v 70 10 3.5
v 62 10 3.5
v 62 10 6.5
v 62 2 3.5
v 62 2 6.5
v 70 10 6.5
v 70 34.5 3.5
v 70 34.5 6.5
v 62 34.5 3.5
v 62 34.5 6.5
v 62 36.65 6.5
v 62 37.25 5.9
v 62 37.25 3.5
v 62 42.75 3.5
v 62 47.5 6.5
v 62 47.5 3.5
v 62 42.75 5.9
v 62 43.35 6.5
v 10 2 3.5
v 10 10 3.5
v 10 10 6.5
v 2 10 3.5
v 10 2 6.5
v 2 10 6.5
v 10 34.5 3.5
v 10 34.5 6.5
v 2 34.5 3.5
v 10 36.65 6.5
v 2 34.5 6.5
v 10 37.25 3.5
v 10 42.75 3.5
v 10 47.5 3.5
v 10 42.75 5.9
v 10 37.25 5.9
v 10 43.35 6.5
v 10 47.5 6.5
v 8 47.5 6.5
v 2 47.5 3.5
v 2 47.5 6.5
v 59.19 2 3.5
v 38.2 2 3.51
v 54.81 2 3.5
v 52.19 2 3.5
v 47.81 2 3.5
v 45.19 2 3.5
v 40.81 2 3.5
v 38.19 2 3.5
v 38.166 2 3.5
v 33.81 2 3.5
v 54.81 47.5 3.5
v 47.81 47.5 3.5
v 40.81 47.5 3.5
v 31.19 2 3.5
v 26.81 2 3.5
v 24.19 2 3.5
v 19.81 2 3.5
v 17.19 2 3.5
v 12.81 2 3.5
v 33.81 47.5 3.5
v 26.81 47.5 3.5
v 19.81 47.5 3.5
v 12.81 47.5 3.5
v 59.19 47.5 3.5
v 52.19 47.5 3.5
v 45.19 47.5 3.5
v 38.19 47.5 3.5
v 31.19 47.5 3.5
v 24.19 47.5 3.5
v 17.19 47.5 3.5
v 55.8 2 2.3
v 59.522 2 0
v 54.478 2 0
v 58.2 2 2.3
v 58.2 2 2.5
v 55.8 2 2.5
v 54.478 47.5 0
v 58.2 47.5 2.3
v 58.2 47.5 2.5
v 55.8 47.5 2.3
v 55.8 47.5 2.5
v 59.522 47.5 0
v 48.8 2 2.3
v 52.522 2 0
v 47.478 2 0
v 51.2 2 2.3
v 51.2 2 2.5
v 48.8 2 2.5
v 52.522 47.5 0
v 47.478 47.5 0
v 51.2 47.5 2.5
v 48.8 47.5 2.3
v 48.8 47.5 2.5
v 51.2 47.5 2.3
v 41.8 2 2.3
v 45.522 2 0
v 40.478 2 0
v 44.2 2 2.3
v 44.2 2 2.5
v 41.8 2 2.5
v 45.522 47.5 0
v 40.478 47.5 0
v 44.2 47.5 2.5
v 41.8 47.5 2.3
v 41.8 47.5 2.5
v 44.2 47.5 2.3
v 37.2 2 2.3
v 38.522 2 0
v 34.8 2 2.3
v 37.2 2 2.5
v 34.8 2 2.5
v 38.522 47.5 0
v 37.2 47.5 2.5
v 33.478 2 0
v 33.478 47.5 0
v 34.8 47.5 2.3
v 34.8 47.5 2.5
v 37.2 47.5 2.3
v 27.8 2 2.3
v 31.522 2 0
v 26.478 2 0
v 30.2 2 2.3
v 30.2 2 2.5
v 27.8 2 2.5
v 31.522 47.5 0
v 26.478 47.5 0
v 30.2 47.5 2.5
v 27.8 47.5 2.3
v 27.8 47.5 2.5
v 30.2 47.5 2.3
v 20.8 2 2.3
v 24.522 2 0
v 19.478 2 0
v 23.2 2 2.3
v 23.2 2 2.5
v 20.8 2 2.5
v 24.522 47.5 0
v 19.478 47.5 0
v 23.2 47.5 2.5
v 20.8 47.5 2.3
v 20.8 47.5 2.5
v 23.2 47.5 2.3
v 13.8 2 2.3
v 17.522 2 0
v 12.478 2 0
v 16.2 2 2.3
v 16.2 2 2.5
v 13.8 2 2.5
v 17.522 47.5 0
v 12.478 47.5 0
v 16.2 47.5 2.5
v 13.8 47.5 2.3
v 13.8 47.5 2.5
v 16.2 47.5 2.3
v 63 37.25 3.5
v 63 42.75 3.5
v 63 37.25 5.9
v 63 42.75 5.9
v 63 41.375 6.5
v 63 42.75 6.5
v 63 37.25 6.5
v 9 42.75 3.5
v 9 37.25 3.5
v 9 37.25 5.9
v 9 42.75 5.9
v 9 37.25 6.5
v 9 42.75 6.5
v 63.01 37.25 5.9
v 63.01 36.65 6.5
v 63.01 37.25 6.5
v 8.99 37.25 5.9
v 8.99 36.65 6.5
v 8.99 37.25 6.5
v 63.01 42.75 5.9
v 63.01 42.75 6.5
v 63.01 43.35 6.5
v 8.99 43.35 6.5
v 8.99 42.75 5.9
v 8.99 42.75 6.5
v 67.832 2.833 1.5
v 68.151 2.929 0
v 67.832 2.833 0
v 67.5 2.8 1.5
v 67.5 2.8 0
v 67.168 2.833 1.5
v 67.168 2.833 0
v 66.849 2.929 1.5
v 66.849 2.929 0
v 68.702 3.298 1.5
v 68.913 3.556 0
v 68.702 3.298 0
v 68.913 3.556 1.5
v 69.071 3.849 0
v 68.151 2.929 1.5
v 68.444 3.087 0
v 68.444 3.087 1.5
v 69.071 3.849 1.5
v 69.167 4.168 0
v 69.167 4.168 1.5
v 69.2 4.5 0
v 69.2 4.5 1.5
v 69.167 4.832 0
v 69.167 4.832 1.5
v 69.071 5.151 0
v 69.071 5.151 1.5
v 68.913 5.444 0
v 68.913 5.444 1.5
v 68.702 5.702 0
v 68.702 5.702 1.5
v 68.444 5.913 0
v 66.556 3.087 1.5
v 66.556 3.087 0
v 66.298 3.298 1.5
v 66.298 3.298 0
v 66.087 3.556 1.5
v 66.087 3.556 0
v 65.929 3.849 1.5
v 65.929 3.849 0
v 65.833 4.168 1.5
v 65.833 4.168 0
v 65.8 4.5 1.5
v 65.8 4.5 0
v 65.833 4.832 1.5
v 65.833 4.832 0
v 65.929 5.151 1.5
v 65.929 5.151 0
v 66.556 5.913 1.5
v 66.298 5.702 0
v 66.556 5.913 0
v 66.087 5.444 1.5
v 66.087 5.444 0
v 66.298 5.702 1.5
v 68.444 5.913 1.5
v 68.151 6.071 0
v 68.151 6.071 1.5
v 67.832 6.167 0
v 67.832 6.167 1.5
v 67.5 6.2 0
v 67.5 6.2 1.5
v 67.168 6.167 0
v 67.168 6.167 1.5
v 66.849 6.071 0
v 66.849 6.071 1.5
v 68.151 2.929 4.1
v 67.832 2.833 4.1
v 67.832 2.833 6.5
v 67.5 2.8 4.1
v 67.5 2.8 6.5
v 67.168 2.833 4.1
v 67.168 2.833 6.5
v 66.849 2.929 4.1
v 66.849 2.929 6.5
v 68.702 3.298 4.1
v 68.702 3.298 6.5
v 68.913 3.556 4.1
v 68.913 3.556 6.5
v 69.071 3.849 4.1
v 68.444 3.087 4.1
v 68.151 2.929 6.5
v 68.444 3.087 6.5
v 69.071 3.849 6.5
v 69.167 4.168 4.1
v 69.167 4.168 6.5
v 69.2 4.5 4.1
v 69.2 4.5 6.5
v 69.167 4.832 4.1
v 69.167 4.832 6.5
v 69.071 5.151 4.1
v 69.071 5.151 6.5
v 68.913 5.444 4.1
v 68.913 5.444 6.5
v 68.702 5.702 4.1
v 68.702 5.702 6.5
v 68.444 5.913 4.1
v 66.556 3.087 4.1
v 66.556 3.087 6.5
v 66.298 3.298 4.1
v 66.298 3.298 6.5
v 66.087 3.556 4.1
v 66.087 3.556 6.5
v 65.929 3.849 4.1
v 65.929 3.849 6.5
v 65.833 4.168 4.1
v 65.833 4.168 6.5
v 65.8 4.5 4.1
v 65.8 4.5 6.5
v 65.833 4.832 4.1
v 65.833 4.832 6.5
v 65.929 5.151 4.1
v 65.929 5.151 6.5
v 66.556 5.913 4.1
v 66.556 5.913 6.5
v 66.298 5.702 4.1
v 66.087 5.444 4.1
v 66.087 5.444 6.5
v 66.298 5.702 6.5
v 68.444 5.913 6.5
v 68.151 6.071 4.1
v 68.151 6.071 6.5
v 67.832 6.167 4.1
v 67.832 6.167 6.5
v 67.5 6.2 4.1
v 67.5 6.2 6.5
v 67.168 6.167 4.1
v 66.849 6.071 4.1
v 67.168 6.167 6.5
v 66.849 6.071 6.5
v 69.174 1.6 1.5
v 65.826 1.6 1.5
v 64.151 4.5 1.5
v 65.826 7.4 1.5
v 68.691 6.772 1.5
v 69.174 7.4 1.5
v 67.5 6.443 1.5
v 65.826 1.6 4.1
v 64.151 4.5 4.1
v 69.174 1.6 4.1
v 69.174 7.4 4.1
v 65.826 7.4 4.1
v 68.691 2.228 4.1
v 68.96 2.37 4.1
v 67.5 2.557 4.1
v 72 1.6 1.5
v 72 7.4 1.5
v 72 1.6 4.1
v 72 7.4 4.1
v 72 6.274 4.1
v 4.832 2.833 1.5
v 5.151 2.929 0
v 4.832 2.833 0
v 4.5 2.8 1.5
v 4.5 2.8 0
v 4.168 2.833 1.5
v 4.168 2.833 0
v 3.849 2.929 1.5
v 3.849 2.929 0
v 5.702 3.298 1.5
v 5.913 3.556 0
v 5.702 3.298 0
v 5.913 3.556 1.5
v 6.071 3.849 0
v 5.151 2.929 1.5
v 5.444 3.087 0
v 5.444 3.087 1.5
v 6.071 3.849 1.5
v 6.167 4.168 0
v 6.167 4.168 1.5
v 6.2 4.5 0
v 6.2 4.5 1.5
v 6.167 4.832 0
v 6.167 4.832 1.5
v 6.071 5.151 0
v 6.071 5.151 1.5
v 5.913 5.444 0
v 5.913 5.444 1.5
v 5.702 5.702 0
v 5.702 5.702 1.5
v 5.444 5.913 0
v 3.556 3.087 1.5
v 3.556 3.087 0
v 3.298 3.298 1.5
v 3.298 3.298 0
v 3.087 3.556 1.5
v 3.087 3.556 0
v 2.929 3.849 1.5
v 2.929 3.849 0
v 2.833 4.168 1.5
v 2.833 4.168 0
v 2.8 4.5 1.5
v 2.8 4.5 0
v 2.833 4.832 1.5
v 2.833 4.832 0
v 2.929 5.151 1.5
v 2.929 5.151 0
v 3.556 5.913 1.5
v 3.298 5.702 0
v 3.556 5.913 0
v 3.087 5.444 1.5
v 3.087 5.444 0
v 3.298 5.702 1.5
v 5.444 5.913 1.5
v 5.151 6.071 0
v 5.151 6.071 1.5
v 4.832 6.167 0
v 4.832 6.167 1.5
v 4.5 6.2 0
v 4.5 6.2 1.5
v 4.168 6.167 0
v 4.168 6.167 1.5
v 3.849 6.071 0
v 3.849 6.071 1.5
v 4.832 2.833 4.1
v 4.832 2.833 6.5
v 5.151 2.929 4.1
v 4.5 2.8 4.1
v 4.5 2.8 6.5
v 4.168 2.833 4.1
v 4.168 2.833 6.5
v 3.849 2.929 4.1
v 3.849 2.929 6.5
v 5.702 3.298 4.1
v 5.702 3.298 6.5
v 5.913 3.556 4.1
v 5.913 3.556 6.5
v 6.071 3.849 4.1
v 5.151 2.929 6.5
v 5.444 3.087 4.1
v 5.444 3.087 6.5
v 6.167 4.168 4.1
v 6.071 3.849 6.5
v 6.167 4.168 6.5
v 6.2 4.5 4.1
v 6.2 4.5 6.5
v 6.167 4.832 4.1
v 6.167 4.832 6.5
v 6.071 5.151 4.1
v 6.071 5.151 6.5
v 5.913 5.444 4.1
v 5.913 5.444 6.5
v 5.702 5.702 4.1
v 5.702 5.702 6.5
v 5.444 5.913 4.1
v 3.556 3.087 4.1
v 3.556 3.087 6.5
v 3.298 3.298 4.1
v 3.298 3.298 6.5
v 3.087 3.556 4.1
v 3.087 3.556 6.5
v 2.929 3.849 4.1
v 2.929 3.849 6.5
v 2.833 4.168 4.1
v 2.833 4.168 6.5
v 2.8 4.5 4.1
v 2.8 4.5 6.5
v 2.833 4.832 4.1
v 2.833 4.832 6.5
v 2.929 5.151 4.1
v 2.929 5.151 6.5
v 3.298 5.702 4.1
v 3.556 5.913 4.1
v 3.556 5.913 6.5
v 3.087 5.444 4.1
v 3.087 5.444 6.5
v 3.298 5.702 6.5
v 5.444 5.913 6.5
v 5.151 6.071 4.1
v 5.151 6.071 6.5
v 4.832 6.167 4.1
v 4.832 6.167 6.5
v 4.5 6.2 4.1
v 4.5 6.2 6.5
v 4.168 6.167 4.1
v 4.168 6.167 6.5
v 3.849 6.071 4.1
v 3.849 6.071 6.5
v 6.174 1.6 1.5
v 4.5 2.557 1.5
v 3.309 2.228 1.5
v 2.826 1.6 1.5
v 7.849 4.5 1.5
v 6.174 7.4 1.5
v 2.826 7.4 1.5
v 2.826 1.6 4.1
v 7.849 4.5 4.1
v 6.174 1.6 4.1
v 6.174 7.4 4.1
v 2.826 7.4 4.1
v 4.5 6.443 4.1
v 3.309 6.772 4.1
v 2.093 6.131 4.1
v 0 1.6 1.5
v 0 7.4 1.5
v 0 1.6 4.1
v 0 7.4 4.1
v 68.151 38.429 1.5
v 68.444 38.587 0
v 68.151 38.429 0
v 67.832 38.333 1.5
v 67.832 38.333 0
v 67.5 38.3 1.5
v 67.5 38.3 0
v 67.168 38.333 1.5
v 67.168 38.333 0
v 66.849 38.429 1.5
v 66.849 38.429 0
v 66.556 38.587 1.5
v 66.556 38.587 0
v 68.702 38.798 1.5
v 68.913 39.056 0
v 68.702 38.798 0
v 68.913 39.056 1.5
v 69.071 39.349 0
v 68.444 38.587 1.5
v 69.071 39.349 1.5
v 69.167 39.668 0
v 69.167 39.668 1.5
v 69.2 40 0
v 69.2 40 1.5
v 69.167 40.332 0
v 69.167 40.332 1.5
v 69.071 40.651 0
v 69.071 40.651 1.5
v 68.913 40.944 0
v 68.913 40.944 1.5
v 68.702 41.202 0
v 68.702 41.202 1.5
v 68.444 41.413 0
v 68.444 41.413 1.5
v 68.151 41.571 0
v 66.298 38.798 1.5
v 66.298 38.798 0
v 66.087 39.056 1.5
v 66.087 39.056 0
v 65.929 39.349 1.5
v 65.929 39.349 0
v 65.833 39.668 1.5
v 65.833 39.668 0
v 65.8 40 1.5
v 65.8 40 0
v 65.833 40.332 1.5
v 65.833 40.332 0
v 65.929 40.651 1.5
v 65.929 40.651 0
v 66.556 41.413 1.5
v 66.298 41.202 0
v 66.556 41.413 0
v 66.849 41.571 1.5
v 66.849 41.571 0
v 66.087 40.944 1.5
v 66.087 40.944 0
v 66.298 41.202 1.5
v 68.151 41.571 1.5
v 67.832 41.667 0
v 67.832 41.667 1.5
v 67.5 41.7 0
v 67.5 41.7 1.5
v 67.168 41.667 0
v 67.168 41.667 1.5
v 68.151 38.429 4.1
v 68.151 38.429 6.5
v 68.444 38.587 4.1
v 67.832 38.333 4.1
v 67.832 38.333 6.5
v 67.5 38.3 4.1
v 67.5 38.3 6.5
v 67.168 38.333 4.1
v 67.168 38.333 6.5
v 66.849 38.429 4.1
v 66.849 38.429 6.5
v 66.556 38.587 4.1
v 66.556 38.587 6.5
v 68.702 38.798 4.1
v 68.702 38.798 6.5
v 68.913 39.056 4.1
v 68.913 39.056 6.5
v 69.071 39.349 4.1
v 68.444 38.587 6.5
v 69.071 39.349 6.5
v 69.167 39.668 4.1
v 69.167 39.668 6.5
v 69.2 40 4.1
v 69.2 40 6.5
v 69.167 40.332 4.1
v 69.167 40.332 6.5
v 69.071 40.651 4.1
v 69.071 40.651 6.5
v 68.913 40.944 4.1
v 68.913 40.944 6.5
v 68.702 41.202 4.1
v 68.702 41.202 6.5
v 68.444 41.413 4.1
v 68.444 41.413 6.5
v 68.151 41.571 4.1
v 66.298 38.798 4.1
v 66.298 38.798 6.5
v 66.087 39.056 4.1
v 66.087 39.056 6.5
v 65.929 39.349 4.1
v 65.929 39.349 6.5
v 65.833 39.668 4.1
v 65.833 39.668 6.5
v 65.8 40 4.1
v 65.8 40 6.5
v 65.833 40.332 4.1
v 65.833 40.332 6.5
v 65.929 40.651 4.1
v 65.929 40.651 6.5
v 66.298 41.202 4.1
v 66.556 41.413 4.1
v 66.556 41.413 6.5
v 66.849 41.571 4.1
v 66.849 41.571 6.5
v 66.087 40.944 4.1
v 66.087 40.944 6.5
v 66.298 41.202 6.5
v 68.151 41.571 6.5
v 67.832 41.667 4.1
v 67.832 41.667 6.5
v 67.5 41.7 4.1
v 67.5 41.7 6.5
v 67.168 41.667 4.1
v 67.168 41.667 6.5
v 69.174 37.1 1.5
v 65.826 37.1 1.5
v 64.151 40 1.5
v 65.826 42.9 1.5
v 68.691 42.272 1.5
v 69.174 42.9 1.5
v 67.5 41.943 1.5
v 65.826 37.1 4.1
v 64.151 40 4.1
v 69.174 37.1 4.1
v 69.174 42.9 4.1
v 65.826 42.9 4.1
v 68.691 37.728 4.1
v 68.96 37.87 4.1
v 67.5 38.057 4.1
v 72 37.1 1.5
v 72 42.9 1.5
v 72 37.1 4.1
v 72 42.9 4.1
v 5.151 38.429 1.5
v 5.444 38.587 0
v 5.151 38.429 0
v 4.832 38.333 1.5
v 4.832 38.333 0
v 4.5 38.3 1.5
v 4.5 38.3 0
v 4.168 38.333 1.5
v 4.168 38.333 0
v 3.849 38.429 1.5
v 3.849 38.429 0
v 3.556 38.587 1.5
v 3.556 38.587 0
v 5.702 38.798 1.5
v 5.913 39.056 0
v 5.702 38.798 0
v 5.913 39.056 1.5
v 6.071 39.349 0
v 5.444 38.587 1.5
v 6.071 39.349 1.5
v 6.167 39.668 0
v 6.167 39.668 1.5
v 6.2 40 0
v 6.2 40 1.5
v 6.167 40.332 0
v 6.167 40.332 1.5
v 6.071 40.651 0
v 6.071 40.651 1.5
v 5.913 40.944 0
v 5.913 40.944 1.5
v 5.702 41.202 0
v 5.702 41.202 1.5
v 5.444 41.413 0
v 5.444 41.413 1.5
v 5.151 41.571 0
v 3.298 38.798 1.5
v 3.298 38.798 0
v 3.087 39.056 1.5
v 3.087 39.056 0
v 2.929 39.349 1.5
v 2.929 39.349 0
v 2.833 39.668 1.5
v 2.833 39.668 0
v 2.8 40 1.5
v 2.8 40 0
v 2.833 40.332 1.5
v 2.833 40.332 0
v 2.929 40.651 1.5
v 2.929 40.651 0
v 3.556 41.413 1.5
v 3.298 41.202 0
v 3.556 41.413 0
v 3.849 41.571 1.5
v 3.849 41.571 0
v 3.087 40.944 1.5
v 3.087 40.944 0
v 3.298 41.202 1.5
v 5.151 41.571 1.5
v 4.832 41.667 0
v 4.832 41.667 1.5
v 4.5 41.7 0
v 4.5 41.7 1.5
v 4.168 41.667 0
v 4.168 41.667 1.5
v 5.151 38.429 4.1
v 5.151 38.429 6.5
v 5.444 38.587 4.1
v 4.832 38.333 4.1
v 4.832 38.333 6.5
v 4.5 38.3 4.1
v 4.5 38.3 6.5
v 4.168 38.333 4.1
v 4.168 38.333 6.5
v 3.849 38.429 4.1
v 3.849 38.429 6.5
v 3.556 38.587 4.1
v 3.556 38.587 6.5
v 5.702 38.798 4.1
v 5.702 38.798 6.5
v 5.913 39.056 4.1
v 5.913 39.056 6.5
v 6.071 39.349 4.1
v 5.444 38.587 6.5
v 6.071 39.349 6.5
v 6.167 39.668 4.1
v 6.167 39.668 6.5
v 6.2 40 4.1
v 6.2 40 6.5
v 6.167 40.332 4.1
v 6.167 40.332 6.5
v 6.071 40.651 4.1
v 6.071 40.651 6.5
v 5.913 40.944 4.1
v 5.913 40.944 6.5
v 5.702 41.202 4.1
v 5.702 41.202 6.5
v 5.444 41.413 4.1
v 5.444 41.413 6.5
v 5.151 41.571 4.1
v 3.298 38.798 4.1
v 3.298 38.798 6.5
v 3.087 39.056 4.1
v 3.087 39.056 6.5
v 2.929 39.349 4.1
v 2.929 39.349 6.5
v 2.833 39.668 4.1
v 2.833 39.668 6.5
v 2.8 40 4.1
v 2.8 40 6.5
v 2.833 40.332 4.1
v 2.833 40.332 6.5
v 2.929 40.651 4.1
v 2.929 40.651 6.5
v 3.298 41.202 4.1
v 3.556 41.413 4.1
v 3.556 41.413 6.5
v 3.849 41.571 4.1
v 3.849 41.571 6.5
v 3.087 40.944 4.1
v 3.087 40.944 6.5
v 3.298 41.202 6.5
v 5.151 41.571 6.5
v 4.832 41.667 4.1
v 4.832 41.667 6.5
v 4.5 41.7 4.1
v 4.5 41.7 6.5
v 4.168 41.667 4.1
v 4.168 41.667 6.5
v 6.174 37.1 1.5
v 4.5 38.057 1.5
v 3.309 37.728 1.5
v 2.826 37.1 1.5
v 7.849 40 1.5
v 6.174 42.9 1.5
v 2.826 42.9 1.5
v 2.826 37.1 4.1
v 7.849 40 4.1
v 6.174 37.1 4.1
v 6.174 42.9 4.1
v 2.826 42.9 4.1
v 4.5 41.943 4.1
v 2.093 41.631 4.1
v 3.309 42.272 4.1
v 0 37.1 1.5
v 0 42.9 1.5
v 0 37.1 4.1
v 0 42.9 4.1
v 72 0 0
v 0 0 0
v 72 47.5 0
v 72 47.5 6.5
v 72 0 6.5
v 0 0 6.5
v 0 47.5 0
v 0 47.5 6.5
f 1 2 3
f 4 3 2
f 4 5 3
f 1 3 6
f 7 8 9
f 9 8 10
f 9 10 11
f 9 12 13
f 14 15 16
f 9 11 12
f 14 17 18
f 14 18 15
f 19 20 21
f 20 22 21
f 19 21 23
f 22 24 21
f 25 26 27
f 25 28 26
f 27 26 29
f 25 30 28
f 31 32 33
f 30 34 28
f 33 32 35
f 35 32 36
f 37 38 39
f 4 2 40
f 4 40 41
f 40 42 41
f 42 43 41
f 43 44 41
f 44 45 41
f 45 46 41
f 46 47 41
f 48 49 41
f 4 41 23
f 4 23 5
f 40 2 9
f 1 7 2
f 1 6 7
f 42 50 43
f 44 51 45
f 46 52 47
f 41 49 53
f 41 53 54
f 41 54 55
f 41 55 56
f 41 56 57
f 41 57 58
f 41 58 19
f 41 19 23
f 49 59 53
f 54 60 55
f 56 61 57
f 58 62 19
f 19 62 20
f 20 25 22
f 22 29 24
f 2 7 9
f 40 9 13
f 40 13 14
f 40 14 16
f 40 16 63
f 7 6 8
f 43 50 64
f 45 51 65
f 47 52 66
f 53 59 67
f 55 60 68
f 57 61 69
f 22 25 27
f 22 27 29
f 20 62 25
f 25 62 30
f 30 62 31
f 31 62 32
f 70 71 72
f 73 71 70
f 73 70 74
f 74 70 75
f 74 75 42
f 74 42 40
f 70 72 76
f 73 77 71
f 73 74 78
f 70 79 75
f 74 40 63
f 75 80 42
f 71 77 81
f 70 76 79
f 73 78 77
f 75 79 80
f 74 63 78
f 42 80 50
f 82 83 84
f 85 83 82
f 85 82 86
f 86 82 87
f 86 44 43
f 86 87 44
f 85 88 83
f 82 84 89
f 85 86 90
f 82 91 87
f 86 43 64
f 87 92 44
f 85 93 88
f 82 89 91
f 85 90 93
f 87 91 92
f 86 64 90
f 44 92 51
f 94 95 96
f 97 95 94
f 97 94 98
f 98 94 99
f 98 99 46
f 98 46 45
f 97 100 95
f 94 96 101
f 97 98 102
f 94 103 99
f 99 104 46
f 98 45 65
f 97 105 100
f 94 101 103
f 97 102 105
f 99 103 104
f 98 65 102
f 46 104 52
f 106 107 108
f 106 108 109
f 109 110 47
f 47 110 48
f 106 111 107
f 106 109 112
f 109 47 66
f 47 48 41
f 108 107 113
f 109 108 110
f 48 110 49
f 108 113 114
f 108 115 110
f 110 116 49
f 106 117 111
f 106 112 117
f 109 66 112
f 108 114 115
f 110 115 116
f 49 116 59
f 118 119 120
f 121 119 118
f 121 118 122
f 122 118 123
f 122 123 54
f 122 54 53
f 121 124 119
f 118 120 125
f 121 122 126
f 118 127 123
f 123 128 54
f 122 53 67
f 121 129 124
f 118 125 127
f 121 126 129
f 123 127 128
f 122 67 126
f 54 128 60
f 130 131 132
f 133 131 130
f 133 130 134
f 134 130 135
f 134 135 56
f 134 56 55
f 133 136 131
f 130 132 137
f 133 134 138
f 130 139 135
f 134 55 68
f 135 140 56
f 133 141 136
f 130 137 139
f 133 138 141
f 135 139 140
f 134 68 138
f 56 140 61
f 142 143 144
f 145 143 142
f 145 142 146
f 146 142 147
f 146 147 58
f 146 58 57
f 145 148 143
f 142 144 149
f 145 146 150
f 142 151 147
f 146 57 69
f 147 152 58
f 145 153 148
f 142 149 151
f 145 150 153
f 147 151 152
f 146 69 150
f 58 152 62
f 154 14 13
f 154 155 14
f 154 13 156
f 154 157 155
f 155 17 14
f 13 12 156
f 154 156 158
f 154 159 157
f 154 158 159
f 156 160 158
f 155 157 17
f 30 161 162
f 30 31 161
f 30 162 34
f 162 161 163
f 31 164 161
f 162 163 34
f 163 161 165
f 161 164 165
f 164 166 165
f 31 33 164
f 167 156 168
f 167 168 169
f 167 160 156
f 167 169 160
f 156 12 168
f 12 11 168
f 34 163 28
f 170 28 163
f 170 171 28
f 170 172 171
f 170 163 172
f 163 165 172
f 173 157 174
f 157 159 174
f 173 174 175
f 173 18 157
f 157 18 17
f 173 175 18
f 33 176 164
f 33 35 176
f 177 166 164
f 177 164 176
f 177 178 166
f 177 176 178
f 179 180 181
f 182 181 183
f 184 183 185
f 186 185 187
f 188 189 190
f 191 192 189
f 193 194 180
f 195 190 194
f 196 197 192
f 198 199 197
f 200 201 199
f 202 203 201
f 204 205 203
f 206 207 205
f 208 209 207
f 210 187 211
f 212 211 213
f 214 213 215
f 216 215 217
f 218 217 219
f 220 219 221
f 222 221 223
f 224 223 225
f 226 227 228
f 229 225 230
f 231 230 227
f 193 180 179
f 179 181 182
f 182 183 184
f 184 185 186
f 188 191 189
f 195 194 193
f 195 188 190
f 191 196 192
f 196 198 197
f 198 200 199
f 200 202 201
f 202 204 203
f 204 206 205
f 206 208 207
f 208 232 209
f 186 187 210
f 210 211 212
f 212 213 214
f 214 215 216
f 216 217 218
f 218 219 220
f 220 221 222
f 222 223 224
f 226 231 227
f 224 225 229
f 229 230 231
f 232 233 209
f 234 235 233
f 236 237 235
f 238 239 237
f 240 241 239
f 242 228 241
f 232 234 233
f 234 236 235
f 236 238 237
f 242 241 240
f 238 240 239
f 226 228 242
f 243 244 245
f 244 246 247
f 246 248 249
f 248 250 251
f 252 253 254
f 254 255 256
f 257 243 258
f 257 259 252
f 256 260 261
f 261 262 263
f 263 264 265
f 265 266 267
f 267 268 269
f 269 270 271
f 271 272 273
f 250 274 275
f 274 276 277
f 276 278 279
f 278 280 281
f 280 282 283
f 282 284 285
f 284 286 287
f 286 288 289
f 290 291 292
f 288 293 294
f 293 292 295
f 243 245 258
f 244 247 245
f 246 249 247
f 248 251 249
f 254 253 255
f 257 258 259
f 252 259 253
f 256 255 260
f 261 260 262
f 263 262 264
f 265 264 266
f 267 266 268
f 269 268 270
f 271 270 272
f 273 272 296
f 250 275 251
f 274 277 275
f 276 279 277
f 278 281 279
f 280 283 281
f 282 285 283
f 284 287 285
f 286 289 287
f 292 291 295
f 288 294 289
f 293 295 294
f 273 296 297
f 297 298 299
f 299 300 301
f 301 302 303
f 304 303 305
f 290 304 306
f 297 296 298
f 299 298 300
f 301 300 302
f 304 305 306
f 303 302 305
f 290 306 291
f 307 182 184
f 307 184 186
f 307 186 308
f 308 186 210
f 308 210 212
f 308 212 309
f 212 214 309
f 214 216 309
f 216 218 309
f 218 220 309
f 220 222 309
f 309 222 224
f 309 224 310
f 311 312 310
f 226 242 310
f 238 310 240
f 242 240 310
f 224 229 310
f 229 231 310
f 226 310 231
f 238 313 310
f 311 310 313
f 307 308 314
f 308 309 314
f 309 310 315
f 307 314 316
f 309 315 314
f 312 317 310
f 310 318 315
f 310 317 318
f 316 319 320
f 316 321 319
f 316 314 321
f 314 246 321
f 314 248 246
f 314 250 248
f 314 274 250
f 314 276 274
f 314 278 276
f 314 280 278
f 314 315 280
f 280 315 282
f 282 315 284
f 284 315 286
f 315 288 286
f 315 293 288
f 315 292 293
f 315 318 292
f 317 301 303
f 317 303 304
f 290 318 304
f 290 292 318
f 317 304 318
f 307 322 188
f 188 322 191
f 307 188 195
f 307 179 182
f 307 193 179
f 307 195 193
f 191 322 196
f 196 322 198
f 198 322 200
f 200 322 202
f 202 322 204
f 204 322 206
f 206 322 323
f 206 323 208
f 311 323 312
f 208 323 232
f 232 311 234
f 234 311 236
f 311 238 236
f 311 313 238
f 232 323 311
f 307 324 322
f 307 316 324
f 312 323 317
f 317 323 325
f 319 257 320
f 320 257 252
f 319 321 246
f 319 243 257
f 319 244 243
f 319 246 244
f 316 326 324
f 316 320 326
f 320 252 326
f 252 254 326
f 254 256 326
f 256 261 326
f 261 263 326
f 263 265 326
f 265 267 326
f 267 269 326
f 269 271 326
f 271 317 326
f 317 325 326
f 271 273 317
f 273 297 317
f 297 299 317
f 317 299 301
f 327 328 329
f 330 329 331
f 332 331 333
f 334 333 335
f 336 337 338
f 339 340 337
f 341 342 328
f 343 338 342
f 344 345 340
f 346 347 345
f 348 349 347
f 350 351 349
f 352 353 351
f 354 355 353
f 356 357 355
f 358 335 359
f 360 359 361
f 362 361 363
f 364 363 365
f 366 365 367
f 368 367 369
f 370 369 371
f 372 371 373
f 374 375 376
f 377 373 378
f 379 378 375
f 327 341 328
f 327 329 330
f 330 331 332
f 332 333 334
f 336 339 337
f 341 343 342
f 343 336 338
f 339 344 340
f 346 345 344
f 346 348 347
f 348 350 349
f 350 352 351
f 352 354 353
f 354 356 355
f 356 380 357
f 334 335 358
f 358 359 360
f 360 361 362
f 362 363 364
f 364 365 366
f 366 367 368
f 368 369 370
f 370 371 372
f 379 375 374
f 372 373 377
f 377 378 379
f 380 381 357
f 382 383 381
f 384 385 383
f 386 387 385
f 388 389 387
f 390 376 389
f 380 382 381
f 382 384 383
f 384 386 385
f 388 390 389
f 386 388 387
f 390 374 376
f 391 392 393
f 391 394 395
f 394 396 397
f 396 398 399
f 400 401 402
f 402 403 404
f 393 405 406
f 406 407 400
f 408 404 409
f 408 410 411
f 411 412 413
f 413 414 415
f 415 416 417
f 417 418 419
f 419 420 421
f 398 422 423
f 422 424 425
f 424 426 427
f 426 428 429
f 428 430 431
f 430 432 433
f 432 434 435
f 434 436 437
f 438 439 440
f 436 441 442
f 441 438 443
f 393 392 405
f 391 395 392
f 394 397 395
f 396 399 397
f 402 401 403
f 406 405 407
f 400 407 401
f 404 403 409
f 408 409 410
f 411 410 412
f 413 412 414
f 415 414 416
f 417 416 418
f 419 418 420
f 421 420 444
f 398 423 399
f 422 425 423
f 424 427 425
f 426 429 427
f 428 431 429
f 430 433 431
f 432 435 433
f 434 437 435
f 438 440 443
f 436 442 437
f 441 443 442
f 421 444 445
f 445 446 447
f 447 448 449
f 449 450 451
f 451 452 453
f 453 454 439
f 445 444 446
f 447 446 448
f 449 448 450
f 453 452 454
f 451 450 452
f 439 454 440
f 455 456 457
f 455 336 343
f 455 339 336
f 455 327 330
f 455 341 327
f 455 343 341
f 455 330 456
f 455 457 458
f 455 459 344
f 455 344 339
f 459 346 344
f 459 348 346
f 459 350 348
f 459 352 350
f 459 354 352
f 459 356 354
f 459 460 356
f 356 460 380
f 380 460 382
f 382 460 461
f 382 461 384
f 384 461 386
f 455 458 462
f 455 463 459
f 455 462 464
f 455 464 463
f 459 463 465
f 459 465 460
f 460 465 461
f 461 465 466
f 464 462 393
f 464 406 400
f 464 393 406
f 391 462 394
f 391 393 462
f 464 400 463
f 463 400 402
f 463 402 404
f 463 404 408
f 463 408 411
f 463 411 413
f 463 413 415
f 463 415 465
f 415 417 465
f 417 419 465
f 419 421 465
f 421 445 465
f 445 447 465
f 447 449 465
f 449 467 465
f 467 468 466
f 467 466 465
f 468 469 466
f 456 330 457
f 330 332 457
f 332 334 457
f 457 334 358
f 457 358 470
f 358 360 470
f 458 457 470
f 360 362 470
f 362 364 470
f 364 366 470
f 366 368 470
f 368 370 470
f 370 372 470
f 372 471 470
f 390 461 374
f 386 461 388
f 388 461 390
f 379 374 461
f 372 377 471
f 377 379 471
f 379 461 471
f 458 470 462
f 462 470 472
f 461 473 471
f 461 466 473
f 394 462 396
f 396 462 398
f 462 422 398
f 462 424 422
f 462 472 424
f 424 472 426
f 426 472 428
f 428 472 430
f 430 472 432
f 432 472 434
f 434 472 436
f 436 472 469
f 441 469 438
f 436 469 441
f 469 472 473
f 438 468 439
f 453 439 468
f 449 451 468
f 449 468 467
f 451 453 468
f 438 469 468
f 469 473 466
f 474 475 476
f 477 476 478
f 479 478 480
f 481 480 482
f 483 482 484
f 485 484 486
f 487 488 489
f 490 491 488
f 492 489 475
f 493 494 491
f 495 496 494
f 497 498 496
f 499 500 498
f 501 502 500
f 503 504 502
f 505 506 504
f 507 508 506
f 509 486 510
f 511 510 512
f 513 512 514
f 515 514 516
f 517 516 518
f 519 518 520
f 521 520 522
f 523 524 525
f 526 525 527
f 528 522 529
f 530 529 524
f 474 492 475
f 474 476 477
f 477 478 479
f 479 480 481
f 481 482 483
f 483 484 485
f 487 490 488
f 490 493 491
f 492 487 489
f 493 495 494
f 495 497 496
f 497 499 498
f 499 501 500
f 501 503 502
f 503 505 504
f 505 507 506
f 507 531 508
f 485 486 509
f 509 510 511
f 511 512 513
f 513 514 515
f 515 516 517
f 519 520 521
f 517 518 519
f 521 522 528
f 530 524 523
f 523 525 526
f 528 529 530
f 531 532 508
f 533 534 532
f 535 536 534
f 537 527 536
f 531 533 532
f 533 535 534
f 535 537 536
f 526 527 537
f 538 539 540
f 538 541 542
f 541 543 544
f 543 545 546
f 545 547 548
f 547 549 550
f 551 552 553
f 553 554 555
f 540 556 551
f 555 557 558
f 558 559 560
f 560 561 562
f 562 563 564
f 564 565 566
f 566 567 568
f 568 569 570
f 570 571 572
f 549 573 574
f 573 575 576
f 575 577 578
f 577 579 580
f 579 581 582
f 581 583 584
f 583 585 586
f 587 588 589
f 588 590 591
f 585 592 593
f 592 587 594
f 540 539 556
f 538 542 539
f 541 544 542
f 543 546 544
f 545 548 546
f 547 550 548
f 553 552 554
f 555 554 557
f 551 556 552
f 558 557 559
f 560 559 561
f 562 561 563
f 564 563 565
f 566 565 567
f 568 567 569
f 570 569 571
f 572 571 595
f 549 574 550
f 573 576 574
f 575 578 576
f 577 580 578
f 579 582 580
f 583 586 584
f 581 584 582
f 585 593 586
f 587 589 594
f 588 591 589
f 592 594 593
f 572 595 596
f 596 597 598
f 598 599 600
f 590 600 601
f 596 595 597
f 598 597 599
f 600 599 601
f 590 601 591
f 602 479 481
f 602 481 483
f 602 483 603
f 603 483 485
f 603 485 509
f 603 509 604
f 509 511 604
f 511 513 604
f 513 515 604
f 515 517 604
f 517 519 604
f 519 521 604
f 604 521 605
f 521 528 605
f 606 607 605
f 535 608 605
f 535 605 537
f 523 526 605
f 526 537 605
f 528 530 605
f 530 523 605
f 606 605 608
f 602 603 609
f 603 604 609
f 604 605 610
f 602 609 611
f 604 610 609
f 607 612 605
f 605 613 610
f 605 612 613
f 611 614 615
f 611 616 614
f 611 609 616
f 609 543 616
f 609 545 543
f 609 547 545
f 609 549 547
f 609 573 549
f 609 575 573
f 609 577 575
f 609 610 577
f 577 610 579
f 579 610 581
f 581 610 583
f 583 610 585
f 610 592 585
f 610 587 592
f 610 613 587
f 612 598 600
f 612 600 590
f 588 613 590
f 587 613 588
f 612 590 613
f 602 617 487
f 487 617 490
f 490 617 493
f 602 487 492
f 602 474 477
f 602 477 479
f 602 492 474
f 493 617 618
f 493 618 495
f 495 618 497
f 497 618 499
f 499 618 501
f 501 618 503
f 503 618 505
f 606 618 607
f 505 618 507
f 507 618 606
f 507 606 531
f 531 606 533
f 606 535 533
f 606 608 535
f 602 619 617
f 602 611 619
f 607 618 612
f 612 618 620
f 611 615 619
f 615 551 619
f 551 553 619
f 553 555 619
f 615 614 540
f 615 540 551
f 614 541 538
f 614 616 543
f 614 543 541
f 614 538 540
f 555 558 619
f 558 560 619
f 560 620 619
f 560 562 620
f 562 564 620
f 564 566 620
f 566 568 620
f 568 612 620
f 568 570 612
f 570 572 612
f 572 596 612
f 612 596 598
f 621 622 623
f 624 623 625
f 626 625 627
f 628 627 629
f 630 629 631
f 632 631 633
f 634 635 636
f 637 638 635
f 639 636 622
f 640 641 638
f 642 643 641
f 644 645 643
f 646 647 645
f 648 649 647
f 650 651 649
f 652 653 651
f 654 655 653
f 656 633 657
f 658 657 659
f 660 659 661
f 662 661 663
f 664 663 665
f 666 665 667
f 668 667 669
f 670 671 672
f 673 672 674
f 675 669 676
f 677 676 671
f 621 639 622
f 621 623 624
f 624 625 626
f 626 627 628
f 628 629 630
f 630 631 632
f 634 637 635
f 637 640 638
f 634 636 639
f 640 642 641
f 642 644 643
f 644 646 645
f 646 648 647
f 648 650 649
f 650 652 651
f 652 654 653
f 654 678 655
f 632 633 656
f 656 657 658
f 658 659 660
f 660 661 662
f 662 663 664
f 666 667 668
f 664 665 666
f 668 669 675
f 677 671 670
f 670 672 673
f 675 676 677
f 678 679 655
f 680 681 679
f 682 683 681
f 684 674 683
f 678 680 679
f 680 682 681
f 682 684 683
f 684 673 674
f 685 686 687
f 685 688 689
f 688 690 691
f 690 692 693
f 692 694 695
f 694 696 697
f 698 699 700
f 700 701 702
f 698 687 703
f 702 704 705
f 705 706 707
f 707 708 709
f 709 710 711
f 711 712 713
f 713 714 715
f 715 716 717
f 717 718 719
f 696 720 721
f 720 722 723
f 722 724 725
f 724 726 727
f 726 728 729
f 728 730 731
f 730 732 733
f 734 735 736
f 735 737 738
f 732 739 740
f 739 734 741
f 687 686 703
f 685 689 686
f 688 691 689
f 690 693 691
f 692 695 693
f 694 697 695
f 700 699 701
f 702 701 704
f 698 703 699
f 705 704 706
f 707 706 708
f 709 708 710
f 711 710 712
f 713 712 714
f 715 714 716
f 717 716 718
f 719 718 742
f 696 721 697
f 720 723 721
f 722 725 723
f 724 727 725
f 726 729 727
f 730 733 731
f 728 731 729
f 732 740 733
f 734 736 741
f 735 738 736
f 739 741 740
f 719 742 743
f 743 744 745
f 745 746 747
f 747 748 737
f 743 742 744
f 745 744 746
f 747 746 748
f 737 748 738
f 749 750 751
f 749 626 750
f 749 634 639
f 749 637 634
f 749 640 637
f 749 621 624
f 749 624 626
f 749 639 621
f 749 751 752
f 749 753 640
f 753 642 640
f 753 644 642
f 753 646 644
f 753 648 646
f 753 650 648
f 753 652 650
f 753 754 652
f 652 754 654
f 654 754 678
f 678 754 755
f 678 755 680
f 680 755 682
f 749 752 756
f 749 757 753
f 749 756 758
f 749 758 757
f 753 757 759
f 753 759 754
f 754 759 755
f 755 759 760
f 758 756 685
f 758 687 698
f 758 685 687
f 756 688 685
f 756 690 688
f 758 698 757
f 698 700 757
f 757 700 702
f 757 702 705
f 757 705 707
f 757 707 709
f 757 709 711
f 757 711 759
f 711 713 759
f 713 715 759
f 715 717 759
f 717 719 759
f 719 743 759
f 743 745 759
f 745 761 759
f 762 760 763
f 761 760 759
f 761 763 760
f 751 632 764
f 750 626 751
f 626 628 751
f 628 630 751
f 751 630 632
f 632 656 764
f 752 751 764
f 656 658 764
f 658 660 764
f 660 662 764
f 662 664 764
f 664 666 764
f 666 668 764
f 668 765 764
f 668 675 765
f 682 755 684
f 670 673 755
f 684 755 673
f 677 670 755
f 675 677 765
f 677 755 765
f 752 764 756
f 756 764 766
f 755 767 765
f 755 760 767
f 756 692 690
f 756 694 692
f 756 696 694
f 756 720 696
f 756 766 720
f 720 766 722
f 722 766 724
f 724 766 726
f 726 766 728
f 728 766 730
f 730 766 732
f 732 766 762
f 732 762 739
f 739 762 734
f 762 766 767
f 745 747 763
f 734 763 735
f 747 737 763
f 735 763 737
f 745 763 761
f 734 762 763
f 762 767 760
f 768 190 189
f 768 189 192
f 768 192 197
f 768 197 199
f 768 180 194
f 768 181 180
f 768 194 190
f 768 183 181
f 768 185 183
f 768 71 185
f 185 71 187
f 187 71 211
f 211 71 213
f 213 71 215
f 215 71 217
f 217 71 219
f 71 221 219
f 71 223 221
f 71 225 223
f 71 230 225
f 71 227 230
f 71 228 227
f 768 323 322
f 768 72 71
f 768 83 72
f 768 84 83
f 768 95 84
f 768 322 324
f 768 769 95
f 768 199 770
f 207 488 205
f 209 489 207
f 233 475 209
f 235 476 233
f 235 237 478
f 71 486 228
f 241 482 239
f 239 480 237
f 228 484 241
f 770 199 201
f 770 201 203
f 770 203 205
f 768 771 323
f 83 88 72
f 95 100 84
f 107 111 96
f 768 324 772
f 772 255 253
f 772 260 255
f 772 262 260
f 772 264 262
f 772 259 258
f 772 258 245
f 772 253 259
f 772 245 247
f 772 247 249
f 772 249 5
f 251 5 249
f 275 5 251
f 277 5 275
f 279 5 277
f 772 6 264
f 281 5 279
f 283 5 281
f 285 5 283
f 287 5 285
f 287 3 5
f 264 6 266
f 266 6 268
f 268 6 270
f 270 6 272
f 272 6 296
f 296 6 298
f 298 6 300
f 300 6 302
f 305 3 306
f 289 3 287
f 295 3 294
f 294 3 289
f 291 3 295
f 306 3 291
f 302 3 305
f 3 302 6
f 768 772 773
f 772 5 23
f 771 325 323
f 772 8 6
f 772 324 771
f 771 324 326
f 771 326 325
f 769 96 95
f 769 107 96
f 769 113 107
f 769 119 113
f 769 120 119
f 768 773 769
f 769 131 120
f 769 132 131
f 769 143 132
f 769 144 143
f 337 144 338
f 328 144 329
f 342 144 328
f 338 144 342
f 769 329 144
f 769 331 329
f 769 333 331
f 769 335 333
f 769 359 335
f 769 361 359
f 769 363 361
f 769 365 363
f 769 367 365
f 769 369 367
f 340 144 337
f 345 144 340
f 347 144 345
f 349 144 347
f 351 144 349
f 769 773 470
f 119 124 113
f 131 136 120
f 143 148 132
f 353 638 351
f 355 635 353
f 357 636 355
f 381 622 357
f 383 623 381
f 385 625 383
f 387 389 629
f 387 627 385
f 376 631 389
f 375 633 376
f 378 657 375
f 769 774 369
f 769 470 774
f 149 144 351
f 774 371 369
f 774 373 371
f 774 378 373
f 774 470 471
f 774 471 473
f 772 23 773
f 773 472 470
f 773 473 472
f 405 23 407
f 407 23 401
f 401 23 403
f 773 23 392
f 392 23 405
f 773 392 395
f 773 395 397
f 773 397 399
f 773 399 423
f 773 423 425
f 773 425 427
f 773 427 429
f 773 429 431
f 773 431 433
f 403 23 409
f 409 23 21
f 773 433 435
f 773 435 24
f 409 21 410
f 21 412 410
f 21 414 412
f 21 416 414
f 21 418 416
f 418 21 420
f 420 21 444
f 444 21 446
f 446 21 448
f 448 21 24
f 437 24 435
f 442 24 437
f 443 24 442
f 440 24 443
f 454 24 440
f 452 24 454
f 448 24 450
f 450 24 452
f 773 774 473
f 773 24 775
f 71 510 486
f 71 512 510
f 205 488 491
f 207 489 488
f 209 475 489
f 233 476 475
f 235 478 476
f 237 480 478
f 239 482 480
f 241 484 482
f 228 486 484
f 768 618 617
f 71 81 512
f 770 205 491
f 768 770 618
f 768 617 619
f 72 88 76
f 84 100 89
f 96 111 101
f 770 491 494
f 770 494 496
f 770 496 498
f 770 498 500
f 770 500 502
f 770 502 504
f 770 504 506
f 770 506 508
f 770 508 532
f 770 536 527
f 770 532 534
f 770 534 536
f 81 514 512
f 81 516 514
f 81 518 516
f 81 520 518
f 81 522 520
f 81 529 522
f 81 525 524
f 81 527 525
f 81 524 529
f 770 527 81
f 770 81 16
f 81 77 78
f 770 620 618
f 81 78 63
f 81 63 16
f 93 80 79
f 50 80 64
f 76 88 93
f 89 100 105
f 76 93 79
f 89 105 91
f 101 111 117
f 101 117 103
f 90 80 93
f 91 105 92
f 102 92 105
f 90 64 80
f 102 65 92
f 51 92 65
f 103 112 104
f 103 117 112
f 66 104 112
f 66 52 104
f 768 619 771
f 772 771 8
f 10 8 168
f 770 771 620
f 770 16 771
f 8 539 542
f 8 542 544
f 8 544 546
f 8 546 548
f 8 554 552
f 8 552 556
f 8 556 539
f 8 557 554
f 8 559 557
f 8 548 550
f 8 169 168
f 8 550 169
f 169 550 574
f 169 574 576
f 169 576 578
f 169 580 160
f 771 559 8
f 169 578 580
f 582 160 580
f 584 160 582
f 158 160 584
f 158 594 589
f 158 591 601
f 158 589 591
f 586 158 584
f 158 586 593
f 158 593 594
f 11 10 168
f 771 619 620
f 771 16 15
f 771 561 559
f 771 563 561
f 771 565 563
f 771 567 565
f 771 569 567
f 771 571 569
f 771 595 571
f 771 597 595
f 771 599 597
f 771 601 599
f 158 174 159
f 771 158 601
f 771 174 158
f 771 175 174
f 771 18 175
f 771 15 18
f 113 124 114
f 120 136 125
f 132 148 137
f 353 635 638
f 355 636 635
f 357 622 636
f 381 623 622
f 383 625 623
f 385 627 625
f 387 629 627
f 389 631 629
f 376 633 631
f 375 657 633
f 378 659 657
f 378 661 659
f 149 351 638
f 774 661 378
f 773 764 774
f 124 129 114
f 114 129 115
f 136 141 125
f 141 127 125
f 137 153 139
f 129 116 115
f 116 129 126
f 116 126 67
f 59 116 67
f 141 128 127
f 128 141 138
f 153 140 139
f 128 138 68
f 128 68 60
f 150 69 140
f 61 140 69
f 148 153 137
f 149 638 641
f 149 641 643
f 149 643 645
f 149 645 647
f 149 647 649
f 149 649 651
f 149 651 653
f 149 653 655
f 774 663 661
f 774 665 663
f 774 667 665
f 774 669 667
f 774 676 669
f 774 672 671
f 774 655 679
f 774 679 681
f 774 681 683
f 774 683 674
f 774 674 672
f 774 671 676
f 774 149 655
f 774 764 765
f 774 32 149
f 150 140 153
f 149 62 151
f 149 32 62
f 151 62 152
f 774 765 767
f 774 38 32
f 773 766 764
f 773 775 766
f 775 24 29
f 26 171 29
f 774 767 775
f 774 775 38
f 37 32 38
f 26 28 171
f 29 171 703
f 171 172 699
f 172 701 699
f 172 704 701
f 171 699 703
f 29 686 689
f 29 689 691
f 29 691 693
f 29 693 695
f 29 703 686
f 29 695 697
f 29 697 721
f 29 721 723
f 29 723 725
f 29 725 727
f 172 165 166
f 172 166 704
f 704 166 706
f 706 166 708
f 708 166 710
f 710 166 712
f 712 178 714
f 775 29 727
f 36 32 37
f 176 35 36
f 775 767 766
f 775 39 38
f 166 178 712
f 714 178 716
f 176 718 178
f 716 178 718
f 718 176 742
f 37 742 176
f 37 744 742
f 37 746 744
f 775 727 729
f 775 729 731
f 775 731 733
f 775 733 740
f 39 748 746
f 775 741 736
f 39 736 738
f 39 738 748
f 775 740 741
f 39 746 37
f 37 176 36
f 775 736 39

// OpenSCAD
// m2_align_tray.scad — M2 のねじ整列皿（2026-09-07 ユーザー「こんなの作れます？2mm 用の」）。
//   平行なスリットの板（トレイ）。2026-09-07 ユーザー「トレイにしてほしい。下の箱はいらない」で箱を外した。板の上に低い縁だけ。振るとねじが先からスリットに落ち、頭（φ3.8）がスリットの縁に掛かって並ぶ。
//   市販品（日東工器 ねじ整列皿 静電 2.0〜2.6mm・トラスコ 392-4233・94×142・穴 273・ピッチ 6）と同じ原理。
//   2026-09-08 ユーザー「スリットの1辺を外までやって、トレイの1辺を上から落とす形にしておいたら列で取り出せたりするかも」:
//     スリットは片端まで抜ける。その縁は別部品の戸（gate）で、板の溝と両端の座の縦溝に上から落とす。戸を抜いて傾ければ列のまま端から出る。
//   2026-09-08 ユーザー「スリットの方向を縦にしてみましょうか。蓋も出口も長辺にしてください」:
//     スリットは短辺（47.5）に沿って走り、出口と戸は長辺（72）の +Y 側。4 隅の座の間（X 52）に 7 本。
//   2026-09-08 ユーザー「スリットの形がクソ適当になってる」「トレイが厚くなっても問題ありません」:
//     ① 出口の外に 1.0 の唇を残していたので、歯の先が 1.6 × 1.0 の小さな爪に切り刻まれていた。唇は廃止（戸が内側へ移ったので要らない）。歯の先は座と面一の 47.5。
//     ② 板 2.0 では歯（両側がスリットの帯）が断面 5.6mm² の片持ちだった。板 3.5・ピッチ 7 にして 12.0mm² に。
//     ③ 下の逃げは 45° をやめて垂直から 30°。深さ 2.3 でも口が 5.06 に収まり、傾けて抜ける角（下の CHAMF_B の項）は 33° → 30° とほぼ同じ。
//
// 数字（📄 JIS M2 なべ: 軸 2.0・頭 φ3.8 × 1.4。手元の実測は無い）:
//   スリット幅 2.4（軸 2.0 + 0.4。頭 3.8 は落ちない）。縁は 45° の面取りで上の口を 4.4 に広げ、先が口の近くに来れば滑り込む。下面にも面取り（抜くときに傾けられるように）。
//   板厚 3.5。上に高さ RIM_H の縁（振るときに山が板から落ちない）。板の下は何も無い（吊るされた軸が下に出るので、4 隅のナットにスペーサーを立てる）。ピッチ 7。
//   刷り方: そのまま（板の下面を下）。天井はナットのポケットだけ（張り出し 3.0）。戸は厚みの向きを立てて刷る（断面が一定なので天井も島も無い）。
//
// 作図は「スリットが局所 X に走り +X へ抜ける」形で書き、最後に 90° 回して外形 72 × 47.5・出口 +Y にしている。
// part = "tray"（使う向き。板の下面が Z=0。刷るのもこの向き） | "gate"（戸。広い面を下） | "asm"（戸を差した姿） | "look"（ねじを吊るした絵） | "sec"（スリットの断面）

part = "tray";

SLIT_W  = 2.4;     // スリットの幅
CHAMF   = 1.0;     // 面取りの深さ（45°）。上の口は SLIT_W + 2*CHAMF = 4.4
FLARE_A = 30;      // 下の逃げの角（垂直から）。板を厚くしてもピッチ 7 に収まるように 45° から寝かせた
WALL_V  = 0.2;     // スリットの垂直な壁の高さ。2026-09-08 ユーザー「手で取ろうとしたら斜めになって引っかかる」:
                   //   壁が 1.0 あると軸 2.0 が幅 2.4 の中で傾けるのは 17° まで（2/cos θ + 1.0 sin θ ≤ 2.4）。壁 0.2 なら 33°、その先は逃げの面に沿う（30°）
PITCH   = 7.0;     // スリットのピッチ
N_SLIT  = 7;       // スリットの本数。座の間 52 に、口 4.4 で (7−1)×7 + 4.4 = 46.4（両側 2.8 余る）
OUT_L   = 72;      // 外形（秋月 C タイプのユニバーサル基板 72 × 47.5。2026-09-07 ユーザー「サイズはユニバーサル基板くらい」「もっと小さいやつ」）
OUT_W   = 47.5;
SL      = OUT_W;   // 局所 X（スリットの走る向き）の長さ 47.5
SW      = OUT_L;   // 局所 Y（スリットの並ぶ向き）の長さ 72
PLATE_T = 3.5;     // 板の厚み（2.0 → 3.5。歯の断面 5.6 → 12.0mm²）
HOLE_D  = 3.4;     // 4 隅の M3 の通し穴（M3_CLEAR 3.4。ユーザー「スペーサーで立たせる」）
HOLE_IN = 4.5;     // 穴の中心の、縁からの距離（閉じた端は両方向、開く端は並ぶ向きだけ）
NUT_AF  = 5.5;     // M3 ナットの二面幅（📄 規格 5.5・厚 2.4。v5 の床と同じ数）。2026-09-08 ユーザー「ナットポケットにしておこう。吊り下げでも持ち上げでもできるし」
NUT_FIT = 0.3;     // 六角ポケットの見込み（✅ 呼び +0.3 の実績値）→ 二面幅 5.8。二面幅をスリットの向きに向ける
NUT_T   = 2.4 + 0.2;   // ナットの厚み側の見込み（ポケットの高さ）
NUT_Z0  = 1.5;     // ポケットの床の Z（座の中。上は塞ぐ）。2026-09-08 ユーザー「六角もポケットにしてください。側面から入れる形で」
PAD_X   = 10.0;    // 閉じた端の座の長さ（スリットの向き）
PAD_XO  = 13.0;    // 開く端の座の長さ（スリットの向き）。戸の溝 2.3 とナットの六角を両方入れる
PAD_Y   = 10.0;    // 座の幅（並ぶ向き）
HOLE_XO = SL - 7.5;    // 開く端の穴の中心（40）。六角の面 37.1〜42.9: 座の面 34.5 まで 2.6・戸の溝 44.2 まで 1.3
WALL    = 2.0;     // 縁の厚み
RIM_H   = 3.0;     // 板の上に立つ縁の高さ
// 戸（gate）。2026-09-08 ユーザー「①画像の位置に移動＋幅をすこし広く ②スリットに入る櫛を持たせて（ネジを押し出す器具に）
//   ③ネジ留め時に一緒に挟み込めるように耳を付けて」「トレイ側もレールに呼びをつけて」
GATE_T  = 5.0;     // 戸の厚み（2.0 → 5.0。ユーザーの赤枠は約 4.9）
GATE_FIT= 0.5;     // 戸とレールの呼び（0.3 → 0.5。ユーザー「出し入れしやすいように」）
GATE_LEAD = 0.6;   // レールの口の面取り（落とし込みの誘い）
GATE_XC = HOLE_XO;                             // 戸の中心 = 4 隅のねじの線（40）。耳がねじで挟まれる
GATE_X0 = GATE_XC - (GATE_T + GATE_FIT) / 2;   // レール 37.25〜42.75
GATE_IN = 1.0;     // レールの深さ（座の内側の面に彫る）。2026-09-08 ユーザー「止め板の下のスリットの形状が変わっちゃってるから、ネジそこで止まっちゃう」:
                   //   帯を横切る溝は歯の頭を 1.3 削り、頭（Z 3.2 で受かる）が落ちて向こう側の 1.3 の壁に当たっていた。レールは両端の座だけにして帯には触らない
GATE_Z0 = PLATE_T;                             // 3.5 戸の下端（＝板の上面。歯の頭に載る）
EAR_T   = 2.0;     // 耳の厚み。座の上面 H から EAR_T
GATE_TOP= PLATE_T + RIM_H + EAR_T;             // 戸の上端 8.5（耳と面一。縁より 2.0 出る）
EAR_HD  = 3.8;     // 耳の穴（トレイの 3.4 より緩い。2 本のねじに落とすため）
EAR_W   = 9.0;     // 耳の幅（厚みの向き）。刃の 5.0 では M3 の頭 φ5.5 が載らず穴の残り肉も 0.6 だった。刃の外面から出口側へ広げる（刷る向きの底は刃と同じ面のまま）
EAR_END = 0.5;     // 耳の先を板の縁から引く量
PRONG_W = SLIT_W - 0.4;    // 2.0 櫛の歯の幅（スリット 2.4 に片側 0.2）
PRONG_Z = 0.6;     // 歯の先の Z（板の下面から浮かす）
GATE_Y0 = PAD_Y - GATE_IN + GATE_FIT / 2;      // 戸の刃の端（座に 1.0 食い込む。9.25）
GATE_L  = SW - 2 * GATE_Y0;                    // 刃の長さ 53.5
SLIT_X0 = WALL;                 // スリットの始まり = 閉じた端の縁の内側。2026-09-08 ユーザー「スリットだけど、トレイの端まで繋いでおいて欲しい」
                                //   （帯 12.47〜59.53 は 4 隅の座 0〜10 / 62〜72 に掛からないので、座を避ける必要は無い）
IW = SW - 2 * WALL;             // 68
SLIT_Y0 = WALL + (IW - N_SLIT * PITCH) / 2;   // スリットの帯を中央に（12）
H = PLATE_T + RIM_H;            // 6.5（板 + 縁）
FLARE_D = PLATE_T - CHAMF - WALL_V;           // 下の逃げの深さ 2.3
FLARE_W = SLIT_W + 2 * FLARE_D * tan(FLARE_A);   // 下の口 5.06
$fn = 32;
NUT_R = (NUT_AF + NUT_FIT) / cos(30) / 2;     // 六角の角までの半径 3.35
echo(str("align_tray: ", OUT_L, " x ", OUT_W, " x ", H, "  slits ", N_SLIT, " x ", SL - SLIT_X0, " (open +Y)",
         "  nut pocket AF ", NUT_AF + NUT_FIT, " x ", NUT_T, "  wall: edge ", HOLE_IN - NUT_R, " pad face ", PAD_Y - HOLE_IN - NUT_R,
         " open-end pad face ", HOLE_XO - (NUT_AF + NUT_FIT) / 2 - (SL - PAD_XO),
         " root wall ", WALL, "  slit1 mouth ", SLIT_Y0 + PITCH / 2 - SLIT_W / 2 - CHAMF, " / flare ", SLIT_Y0 + PITCH / 2 - FLARE_W / 2, " vs pad ", PAD_Y, "  gate ", GATE_L,
         "  tooth top/waist/bottom ", PITCH - SLIT_W - 2 * CHAMF, "/", PITCH - SLIT_W, "/", PITCH - FLARE_W,
         "  nut Z ", NUT_Z0, "..", NUT_Z0 + NUT_T, " ceiling ", H - NUT_Z0 - NUT_T,
         "  gate T ", GATE_T, " rail ", GATE_T + GATE_FIT, " at x ", GATE_X0, "..", GATE_X0 + GATE_T + GATE_FIT,
         " blade Z ", GATE_Z0, "..", GATE_TOP, " prong ", PRONG_W, " x ", GATE_Z0 - PRONG_Z, " ear ", H, "..", GATE_TOP, " x ", EAR_W, " hole wall ", GATE_XC - EAR_HD / 2 - (GATE_XC - GATE_T / 2), "/", (GATE_XC - GATE_T / 2) + EAR_W - (GATE_XC + EAR_HD / 2)));

module slit(x0, x1) {                       // 断面: 上の口 4.4（45°）→ 垂直 0.2 → 下の逃げ（垂直から 30°）→ 下の口 5.06
    // convexity: F5（OpenCSG）のプレビューは奥行きの層数がこれで決まる。既定の 1 だと抜きが重なる所が縞になる（形は無事）
    translate([x0, 0, 0]) rotate([90, 0, 90]) linear_extrude(x1 - x0, convexity = 10)
        polygon([[-FLARE_W / 2, -0.01], [FLARE_W / 2, -0.01],
                 [ SLIT_W / 2, FLARE_D], [ SLIT_W / 2, FLARE_D + WALL_V], [ SLIT_W / 2 + CHAMF, PLATE_T + 0.01],
                 [-SLIT_W / 2 - CHAMF, PLATE_T + 0.01], [-SLIT_W / 2, FLARE_D + WALL_V], [-SLIT_W / 2, FLARE_D]]);
}

module tray_local() {                       // スリットは +X へ抜ける
    difference() {
        cube([SL, SW, H]);
        difference() {
            translate([WALL, WALL, PLATE_T]) cube([SL, IW, RIM_H + 1]);                  // 縁の内側。+X は縁を残さない（戸が縁になる）
            for (y = [0, SW - PAD_Y]) {                                                 // 角の座は残す
                translate([0, y, 0]) cube([PAD_X, PAD_Y, H + 2]);
                translate([SL - PAD_XO, y, 0]) cube([PAD_XO, PAD_Y, H + 2]);
            }
        }
        for (i = [0 : N_SLIT - 1]) translate([0, SLIT_Y0 + PITCH / 2 + i * PITCH, 0]) slit(SLIT_X0, SL + 1);   // 全部 +X へ抜ける
        for (y = [PAD_Y - GATE_IN, SW - PAD_Y]) translate([GATE_X0, y, PLATE_T])                          // 戸のレール（両端の座の内側の面に 1.0。帯は削らない）
            cube([GATE_T + GATE_FIT, GATE_IN, RIM_H + 1]);
        for (sgn = [-1, 1], y = [PAD_Y - GATE_IN, SW - PAD_Y])                                             // レールの口の誘い（45°・上端から 0.6）
            translate([GATE_XC + sgn * (GATE_T + GATE_FIT) / 2, y - 0.01, H]) rotate([-90, 0, 0]) linear_extrude(GATE_IN + 0.02)
                polygon([[0, 0], [sgn * GATE_LEAD, 0], [0, GATE_LEAD]]);
        for (p = [[HOLE_IN, HOLE_IN], [HOLE_IN, SW - HOLE_IN], [HOLE_XO, HOLE_IN], [HOLE_XO, SW - HOLE_IN]]) translate([p[0], p[1], 0]) {
            translate([0, 0, -1]) cylinder(d = HOLE_D, h = H + 2);
            translate([0, 0, NUT_Z0]) rotate([0, 0, 30]) cylinder(r = NUT_R, h = NUT_T, $fn = 6);   // M3 ナットの六角ポケット（座の中。上は塞がる）
            sg = (p[1] < SW / 2) ? -1 : 1;                                                          // 側面（並ぶ向きの外）へ抜ける差し込み口
            translate([-(NUT_AF + NUT_FIT) / 2, sg > 0 ? 0 : -(PAD_Y + 1), NUT_Z0]) cube([NUT_AF + NUT_FIT, PAD_Y + 1, NUT_T]);
        }
    }
}
module to_world() translate([SW, 0, 0]) rotate([0, 0, 90]) children();   // 局所 X → 世界 Y。外形 X 0〜72・Y 0〜47.5、出口は +Y
module tray() to_world() render(convexity = 10) tray_local();   // F5 でも実体を出す（縞が出ない）
// 戸は局所 X（厚み 5.0）に一定の断面。刃 + 櫛の歯 + 両端の耳。据えた位置で書く
module gate() {
    x0 = GATE_XC - GATE_T / 2;
    translate([x0, GATE_Y0, GATE_Z0]) cube([GATE_T, GATE_L, GATE_TOP - GATE_Z0]);                    // 刃
    for (i = [0 : N_SLIT - 1])                                                                       // スリットに入る櫛の歯
        translate([x0, SLIT_Y0 + PITCH / 2 + i * PITCH - PRONG_W / 2, PRONG_Z]) cube([GATE_T, PRONG_W, GATE_Z0 - PRONG_Z + 0.01]);
    difference() {                                                                                   // 耳（座の上に載り、M3 で一緒に挟まれる）
        for (sgn = [0, 1])
            translate([x0, sgn ? SW - PAD_Y - GATE_FIT / 2 : EAR_END, H]) cube([EAR_W, PAD_Y + GATE_FIT / 2 - EAR_END, EAR_T]);
        for (y = [HOLE_IN, SW - HOLE_IN]) translate([GATE_XC, y, H - 1]) cylinder(d = EAR_HD, h = EAR_T + 2);
    }
}
module gate_in_place() to_world() gate();

module screw(len) color("#c8a030") { cylinder(d = 2.0, h = len); translate([0, 0, len]) cylinder(d = 3.8, h = 1.4); }

if (part == "tray") tray();
// 刷り方: 厚みの向き（局所 X）を Z に立てる。断面が一定なので天井も島も出ない
if (part == "gate") translate([GATE_TOP, -EAR_END, -(GATE_XC - GATE_T / 2)]) rotate([0, -90, 0]) gate();
if (part == "asm") { color("#b8c4d0") tray(); color("#d0a040") gate_in_place(); }
if (part == "sec") intersection() { tray(); translate([-1, OUT_W / 2 - 0.5, -1]) cube([OUT_L + 2, 1, H + 2]); }
if (part == "look") {
    color("#b8c4d0") tray(); color("#d0a040") gate_in_place();
    for (i = [0 : N_SLIT - 1], k = [0 : 3])
        if ((i * 7 + k * 3) % 5 != 0)
            to_world() translate([SLIT_X0 + 4 + k * 8 + i * 1.0, SLIT_Y0 + PITCH / 2 + i * PITCH, PLATE_T - [4, 6, 8, 10, 12][(i + k) % 5]]) screw([4, 6, 8, 10, 12][(i + k) % 5]);
}
